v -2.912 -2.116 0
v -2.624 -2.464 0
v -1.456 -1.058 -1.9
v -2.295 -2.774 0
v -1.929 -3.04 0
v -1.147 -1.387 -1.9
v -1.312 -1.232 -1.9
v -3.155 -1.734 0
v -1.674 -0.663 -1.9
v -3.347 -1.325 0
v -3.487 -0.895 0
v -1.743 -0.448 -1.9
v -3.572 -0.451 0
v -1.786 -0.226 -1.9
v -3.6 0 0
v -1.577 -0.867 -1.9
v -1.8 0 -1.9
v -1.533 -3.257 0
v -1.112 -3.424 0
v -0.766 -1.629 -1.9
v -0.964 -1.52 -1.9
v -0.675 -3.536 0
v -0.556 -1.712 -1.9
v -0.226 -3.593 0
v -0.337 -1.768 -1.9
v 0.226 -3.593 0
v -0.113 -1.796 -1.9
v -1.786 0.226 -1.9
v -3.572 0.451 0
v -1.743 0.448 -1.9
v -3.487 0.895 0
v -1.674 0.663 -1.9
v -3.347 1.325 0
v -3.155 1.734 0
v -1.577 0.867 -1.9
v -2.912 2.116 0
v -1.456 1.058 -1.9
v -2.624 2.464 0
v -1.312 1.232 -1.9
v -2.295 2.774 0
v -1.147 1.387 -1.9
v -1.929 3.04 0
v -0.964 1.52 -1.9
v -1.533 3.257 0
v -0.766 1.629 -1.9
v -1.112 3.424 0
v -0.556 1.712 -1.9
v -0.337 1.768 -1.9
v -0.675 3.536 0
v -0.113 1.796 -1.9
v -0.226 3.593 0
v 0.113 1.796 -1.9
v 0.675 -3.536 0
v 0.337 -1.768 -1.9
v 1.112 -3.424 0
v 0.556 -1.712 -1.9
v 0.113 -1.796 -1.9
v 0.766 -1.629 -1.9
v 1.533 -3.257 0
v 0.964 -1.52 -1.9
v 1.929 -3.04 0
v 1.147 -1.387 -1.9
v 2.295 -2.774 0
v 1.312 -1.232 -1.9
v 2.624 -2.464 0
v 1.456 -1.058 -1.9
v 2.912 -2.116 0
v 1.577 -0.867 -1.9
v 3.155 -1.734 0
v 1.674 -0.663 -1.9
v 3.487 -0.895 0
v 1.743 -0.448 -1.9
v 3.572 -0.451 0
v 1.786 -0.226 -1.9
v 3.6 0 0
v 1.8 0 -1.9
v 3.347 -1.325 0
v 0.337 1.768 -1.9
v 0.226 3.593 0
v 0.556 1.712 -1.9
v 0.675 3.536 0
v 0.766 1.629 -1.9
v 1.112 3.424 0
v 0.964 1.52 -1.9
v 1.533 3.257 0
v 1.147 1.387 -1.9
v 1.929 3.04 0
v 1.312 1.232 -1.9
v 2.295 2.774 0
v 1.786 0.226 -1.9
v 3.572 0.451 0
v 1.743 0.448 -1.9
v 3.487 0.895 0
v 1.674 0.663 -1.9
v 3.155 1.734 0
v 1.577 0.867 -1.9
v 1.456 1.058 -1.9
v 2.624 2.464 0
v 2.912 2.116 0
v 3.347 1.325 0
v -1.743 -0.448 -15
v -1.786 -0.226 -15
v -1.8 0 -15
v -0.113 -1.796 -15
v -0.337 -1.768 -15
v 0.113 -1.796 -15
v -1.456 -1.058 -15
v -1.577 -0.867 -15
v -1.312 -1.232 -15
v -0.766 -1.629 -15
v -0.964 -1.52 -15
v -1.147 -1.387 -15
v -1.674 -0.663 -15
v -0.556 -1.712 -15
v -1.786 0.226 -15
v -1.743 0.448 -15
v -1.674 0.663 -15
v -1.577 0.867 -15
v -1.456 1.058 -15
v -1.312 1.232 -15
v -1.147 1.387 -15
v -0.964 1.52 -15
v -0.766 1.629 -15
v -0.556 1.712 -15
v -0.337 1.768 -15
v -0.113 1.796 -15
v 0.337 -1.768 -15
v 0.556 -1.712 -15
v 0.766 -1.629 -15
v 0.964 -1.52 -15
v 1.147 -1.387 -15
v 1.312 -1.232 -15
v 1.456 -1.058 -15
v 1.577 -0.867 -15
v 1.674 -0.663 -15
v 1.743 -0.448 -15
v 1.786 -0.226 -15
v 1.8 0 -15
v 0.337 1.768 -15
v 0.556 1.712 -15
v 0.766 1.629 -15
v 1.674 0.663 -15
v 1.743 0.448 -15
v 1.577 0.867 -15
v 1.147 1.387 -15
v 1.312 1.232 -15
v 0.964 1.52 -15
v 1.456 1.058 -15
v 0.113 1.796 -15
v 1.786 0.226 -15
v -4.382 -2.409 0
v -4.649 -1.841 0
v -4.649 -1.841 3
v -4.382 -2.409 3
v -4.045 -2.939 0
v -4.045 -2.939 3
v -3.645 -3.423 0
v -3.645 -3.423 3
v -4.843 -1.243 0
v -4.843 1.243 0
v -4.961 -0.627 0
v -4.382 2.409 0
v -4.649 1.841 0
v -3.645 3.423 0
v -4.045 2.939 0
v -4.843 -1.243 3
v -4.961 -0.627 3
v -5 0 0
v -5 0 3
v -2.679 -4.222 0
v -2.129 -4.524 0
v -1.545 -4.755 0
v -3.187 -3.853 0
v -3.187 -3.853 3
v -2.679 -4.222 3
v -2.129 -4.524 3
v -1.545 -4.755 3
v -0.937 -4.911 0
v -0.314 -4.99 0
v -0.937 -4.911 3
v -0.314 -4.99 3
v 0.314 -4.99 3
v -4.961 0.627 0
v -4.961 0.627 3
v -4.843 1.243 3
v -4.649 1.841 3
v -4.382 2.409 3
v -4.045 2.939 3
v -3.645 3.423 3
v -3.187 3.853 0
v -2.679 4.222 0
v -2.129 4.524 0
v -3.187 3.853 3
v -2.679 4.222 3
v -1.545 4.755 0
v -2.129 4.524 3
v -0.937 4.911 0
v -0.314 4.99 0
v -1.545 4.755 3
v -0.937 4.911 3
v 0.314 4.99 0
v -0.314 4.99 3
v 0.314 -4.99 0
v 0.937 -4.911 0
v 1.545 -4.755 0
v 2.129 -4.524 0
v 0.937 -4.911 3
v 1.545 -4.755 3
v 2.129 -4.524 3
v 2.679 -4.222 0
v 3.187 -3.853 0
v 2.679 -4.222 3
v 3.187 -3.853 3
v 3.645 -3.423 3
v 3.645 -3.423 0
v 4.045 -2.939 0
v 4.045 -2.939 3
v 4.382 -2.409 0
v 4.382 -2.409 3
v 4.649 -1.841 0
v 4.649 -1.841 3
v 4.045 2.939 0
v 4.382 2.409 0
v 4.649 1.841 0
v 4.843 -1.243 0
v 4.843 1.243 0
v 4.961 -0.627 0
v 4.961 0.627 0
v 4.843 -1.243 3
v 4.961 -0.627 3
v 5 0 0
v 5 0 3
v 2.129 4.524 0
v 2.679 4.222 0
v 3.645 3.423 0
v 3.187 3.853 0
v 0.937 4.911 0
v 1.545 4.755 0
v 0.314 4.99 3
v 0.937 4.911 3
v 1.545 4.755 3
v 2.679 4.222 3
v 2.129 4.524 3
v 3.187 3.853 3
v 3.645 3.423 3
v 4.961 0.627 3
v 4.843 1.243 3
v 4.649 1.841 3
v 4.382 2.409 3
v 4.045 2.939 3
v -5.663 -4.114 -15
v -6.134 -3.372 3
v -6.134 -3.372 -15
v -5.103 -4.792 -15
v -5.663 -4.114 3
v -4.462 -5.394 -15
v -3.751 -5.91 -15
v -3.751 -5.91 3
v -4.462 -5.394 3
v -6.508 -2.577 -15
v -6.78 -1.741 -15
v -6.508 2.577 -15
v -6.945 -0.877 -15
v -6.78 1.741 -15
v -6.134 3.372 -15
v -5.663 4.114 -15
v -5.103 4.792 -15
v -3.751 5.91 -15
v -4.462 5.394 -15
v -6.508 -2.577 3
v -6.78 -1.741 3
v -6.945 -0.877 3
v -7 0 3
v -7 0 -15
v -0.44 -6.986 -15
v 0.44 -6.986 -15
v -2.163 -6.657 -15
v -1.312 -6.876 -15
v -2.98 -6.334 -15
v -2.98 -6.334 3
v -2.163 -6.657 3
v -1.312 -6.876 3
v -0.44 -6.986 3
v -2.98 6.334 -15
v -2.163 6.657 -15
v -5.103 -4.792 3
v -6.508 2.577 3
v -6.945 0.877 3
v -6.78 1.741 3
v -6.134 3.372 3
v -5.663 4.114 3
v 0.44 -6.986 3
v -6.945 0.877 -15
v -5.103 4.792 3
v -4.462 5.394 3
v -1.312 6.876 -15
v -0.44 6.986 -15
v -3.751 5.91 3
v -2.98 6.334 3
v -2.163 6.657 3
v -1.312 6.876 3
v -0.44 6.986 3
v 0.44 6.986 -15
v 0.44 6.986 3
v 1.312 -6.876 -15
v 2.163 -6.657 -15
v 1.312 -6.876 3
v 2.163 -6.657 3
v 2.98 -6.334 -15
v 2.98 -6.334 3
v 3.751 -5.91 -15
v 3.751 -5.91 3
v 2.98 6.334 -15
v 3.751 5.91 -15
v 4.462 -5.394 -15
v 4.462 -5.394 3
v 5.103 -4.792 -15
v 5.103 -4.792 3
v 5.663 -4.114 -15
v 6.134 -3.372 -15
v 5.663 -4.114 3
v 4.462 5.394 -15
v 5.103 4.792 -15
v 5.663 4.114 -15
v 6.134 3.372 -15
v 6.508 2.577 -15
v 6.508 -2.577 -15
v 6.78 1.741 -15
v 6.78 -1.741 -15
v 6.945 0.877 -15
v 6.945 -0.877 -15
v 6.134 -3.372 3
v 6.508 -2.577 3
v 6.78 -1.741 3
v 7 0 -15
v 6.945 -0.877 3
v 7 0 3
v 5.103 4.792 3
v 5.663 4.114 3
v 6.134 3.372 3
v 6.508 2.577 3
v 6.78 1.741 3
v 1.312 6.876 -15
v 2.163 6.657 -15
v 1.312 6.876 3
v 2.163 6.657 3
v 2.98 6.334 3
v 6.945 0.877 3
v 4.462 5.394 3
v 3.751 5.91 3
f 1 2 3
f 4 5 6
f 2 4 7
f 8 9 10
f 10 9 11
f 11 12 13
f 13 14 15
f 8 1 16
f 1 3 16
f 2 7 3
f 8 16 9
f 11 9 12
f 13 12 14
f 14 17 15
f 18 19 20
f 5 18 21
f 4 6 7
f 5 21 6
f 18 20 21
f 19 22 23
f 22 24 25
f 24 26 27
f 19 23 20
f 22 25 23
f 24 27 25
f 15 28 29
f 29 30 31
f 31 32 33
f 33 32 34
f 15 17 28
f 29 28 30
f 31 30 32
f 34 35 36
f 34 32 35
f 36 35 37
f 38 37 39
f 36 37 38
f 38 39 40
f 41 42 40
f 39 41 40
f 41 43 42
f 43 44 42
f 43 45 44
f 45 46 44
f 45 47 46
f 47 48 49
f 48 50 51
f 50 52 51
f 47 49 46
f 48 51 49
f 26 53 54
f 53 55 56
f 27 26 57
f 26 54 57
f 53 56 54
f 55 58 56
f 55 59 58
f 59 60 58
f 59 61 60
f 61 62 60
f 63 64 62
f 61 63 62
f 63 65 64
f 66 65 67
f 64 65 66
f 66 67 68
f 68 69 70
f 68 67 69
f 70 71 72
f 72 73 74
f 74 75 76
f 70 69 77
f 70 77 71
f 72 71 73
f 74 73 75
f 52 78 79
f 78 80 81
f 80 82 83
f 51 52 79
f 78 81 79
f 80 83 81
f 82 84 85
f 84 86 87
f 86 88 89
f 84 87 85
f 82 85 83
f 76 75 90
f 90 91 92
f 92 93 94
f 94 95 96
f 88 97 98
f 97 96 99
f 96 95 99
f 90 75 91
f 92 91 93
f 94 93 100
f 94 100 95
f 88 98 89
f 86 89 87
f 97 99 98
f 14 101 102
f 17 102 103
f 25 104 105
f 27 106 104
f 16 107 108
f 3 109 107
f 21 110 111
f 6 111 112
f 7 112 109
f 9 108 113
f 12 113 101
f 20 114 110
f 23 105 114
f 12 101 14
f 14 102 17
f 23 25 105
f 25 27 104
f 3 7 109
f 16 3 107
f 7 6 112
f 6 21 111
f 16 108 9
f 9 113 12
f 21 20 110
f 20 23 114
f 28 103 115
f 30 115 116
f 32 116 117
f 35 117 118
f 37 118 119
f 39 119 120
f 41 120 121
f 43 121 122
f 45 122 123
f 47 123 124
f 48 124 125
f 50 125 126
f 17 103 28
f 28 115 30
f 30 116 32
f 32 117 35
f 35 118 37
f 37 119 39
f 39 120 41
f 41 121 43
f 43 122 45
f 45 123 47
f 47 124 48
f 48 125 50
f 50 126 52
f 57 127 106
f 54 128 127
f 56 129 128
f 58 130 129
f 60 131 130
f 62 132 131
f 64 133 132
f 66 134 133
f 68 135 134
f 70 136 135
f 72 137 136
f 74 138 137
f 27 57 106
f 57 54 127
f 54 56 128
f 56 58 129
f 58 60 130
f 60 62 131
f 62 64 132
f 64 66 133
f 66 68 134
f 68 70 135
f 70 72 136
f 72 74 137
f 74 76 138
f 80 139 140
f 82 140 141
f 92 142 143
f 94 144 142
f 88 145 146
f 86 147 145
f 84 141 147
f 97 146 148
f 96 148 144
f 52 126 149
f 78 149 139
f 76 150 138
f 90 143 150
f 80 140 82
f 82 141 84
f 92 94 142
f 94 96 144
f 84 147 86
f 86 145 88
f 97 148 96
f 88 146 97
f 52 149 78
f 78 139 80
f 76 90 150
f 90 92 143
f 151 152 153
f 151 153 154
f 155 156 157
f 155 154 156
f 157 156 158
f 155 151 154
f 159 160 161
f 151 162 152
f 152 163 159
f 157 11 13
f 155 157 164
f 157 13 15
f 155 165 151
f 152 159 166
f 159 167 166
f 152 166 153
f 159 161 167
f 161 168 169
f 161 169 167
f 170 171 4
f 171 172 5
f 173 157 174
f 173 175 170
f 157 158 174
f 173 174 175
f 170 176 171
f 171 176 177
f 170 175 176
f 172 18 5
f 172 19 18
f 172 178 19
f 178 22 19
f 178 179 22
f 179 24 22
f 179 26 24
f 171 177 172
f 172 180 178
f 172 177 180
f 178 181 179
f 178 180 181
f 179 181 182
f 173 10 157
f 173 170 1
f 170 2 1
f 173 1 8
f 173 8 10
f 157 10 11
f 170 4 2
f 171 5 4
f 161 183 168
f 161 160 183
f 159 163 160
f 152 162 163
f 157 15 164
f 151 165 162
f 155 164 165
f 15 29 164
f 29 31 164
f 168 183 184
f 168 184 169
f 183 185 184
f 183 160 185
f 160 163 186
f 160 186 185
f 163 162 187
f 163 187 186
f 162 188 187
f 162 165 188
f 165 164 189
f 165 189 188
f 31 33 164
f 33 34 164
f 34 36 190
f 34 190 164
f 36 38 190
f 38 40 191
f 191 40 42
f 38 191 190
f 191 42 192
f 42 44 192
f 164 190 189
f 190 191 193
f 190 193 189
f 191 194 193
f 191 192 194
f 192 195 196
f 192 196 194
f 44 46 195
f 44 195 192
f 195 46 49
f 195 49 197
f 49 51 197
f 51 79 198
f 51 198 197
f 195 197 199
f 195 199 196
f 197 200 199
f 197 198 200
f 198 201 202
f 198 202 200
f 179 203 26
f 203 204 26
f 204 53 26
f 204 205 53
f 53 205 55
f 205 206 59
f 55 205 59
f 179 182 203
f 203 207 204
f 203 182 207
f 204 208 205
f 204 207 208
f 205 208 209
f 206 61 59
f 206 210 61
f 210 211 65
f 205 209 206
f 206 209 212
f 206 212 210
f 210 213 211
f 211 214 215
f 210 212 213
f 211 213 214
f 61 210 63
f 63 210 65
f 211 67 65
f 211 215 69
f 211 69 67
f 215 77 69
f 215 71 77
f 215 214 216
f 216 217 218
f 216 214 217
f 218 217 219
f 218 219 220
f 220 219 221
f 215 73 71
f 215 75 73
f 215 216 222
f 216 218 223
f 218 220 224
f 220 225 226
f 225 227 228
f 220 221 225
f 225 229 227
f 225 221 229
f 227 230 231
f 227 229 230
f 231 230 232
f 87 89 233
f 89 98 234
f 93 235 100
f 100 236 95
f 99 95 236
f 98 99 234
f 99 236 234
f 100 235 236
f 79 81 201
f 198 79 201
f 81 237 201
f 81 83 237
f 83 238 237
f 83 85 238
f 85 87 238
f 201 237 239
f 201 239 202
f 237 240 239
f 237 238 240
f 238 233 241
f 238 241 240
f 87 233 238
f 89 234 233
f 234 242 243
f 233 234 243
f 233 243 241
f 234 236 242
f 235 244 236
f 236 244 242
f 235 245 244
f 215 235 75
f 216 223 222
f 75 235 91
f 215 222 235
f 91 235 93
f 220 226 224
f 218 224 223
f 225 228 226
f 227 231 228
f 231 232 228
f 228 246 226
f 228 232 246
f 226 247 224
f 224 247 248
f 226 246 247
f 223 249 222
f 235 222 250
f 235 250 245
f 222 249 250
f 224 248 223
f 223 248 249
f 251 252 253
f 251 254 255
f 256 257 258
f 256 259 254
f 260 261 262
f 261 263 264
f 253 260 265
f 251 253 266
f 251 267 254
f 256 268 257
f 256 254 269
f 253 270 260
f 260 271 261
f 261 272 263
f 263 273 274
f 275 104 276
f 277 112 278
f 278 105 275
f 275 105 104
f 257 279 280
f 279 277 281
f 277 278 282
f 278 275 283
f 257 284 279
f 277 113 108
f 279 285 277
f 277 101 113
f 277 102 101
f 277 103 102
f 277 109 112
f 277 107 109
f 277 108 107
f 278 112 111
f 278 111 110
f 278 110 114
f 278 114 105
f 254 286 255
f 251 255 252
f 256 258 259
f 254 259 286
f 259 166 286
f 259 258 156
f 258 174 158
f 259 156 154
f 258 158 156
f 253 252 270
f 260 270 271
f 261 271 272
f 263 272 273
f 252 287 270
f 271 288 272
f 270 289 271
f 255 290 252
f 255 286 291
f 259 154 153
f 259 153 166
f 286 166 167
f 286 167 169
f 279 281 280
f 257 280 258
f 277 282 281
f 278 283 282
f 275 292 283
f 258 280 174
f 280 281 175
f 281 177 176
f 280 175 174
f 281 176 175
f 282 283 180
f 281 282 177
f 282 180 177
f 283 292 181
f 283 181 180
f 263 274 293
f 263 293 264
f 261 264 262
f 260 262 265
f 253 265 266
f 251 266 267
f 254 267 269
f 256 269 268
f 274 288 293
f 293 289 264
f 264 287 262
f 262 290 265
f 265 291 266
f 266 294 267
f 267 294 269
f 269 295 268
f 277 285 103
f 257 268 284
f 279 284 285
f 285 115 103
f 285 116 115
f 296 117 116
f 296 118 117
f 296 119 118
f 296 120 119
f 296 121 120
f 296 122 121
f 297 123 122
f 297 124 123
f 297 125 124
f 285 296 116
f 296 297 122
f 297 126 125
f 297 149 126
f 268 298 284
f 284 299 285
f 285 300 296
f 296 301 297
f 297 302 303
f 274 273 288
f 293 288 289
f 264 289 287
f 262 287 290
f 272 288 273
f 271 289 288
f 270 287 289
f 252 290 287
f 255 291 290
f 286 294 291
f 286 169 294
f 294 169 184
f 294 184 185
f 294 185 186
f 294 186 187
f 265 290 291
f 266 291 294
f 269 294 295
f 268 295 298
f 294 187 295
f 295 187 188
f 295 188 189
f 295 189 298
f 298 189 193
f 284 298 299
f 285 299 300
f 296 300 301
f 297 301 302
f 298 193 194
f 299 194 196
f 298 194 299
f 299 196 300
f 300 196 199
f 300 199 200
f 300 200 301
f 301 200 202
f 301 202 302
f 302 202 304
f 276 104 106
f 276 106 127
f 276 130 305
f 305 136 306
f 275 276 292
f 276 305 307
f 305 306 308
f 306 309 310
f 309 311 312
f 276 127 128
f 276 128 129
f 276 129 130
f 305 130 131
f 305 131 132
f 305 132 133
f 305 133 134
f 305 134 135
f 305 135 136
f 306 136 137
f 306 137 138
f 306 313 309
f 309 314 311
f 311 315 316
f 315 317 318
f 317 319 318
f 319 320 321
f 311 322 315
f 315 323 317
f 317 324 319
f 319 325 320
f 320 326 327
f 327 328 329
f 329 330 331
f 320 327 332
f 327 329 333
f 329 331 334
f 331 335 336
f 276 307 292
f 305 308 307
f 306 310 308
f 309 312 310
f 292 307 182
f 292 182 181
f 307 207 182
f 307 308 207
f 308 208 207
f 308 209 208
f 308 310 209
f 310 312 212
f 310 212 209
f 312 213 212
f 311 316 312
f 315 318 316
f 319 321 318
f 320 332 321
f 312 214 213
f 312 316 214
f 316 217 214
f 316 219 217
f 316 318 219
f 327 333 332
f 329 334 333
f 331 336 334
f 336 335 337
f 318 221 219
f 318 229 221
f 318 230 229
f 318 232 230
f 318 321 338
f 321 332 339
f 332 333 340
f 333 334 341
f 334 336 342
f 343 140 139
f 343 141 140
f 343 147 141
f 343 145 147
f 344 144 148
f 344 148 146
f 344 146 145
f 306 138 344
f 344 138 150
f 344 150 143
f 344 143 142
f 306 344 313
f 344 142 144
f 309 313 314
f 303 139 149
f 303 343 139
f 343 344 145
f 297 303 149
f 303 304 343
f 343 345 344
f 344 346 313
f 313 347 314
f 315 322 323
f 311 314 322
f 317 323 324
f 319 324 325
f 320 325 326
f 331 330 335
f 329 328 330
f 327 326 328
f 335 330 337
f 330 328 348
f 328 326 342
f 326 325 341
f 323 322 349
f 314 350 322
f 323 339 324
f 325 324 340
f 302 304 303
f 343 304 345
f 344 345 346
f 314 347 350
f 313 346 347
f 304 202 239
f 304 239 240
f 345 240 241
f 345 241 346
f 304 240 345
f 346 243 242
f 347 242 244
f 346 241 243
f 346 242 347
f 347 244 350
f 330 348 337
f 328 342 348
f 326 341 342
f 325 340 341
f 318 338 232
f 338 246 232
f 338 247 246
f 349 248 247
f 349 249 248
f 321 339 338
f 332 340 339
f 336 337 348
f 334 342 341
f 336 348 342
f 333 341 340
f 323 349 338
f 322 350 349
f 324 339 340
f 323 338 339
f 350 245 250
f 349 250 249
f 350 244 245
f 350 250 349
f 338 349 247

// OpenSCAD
$fn = 50;

difference() {
	union() {
		translate(v = [0, 0, -15.0]) {
			cylinder(h = 18, r = 7.0);
		}
	}
	union() {
		translate(v = [0, 0, 0]) {
			rotate(a = [0, 0, 0]) {
				difference() {
					union() {
						translate(v = [0, 0, -18.0]) {
							cylinder(h = 18, r = 1.5);
						}
						translate(v = [0, 0, -1.9]) {
							cylinder(h = 1.9, r1 = 1.8, r2 = 3.6);
						}
						translate(v = [0, 0, -18.0]) {
							cylinder(h = 18, r = 1.8);
						}
						translate(v = [0, 0, -18.0]) {
							cylinder(h = 18, r = 1.5);
						}
					}
					union();
				}
			}
		}
		#cylinder(h = 3, r = 5.0);
	}
}
